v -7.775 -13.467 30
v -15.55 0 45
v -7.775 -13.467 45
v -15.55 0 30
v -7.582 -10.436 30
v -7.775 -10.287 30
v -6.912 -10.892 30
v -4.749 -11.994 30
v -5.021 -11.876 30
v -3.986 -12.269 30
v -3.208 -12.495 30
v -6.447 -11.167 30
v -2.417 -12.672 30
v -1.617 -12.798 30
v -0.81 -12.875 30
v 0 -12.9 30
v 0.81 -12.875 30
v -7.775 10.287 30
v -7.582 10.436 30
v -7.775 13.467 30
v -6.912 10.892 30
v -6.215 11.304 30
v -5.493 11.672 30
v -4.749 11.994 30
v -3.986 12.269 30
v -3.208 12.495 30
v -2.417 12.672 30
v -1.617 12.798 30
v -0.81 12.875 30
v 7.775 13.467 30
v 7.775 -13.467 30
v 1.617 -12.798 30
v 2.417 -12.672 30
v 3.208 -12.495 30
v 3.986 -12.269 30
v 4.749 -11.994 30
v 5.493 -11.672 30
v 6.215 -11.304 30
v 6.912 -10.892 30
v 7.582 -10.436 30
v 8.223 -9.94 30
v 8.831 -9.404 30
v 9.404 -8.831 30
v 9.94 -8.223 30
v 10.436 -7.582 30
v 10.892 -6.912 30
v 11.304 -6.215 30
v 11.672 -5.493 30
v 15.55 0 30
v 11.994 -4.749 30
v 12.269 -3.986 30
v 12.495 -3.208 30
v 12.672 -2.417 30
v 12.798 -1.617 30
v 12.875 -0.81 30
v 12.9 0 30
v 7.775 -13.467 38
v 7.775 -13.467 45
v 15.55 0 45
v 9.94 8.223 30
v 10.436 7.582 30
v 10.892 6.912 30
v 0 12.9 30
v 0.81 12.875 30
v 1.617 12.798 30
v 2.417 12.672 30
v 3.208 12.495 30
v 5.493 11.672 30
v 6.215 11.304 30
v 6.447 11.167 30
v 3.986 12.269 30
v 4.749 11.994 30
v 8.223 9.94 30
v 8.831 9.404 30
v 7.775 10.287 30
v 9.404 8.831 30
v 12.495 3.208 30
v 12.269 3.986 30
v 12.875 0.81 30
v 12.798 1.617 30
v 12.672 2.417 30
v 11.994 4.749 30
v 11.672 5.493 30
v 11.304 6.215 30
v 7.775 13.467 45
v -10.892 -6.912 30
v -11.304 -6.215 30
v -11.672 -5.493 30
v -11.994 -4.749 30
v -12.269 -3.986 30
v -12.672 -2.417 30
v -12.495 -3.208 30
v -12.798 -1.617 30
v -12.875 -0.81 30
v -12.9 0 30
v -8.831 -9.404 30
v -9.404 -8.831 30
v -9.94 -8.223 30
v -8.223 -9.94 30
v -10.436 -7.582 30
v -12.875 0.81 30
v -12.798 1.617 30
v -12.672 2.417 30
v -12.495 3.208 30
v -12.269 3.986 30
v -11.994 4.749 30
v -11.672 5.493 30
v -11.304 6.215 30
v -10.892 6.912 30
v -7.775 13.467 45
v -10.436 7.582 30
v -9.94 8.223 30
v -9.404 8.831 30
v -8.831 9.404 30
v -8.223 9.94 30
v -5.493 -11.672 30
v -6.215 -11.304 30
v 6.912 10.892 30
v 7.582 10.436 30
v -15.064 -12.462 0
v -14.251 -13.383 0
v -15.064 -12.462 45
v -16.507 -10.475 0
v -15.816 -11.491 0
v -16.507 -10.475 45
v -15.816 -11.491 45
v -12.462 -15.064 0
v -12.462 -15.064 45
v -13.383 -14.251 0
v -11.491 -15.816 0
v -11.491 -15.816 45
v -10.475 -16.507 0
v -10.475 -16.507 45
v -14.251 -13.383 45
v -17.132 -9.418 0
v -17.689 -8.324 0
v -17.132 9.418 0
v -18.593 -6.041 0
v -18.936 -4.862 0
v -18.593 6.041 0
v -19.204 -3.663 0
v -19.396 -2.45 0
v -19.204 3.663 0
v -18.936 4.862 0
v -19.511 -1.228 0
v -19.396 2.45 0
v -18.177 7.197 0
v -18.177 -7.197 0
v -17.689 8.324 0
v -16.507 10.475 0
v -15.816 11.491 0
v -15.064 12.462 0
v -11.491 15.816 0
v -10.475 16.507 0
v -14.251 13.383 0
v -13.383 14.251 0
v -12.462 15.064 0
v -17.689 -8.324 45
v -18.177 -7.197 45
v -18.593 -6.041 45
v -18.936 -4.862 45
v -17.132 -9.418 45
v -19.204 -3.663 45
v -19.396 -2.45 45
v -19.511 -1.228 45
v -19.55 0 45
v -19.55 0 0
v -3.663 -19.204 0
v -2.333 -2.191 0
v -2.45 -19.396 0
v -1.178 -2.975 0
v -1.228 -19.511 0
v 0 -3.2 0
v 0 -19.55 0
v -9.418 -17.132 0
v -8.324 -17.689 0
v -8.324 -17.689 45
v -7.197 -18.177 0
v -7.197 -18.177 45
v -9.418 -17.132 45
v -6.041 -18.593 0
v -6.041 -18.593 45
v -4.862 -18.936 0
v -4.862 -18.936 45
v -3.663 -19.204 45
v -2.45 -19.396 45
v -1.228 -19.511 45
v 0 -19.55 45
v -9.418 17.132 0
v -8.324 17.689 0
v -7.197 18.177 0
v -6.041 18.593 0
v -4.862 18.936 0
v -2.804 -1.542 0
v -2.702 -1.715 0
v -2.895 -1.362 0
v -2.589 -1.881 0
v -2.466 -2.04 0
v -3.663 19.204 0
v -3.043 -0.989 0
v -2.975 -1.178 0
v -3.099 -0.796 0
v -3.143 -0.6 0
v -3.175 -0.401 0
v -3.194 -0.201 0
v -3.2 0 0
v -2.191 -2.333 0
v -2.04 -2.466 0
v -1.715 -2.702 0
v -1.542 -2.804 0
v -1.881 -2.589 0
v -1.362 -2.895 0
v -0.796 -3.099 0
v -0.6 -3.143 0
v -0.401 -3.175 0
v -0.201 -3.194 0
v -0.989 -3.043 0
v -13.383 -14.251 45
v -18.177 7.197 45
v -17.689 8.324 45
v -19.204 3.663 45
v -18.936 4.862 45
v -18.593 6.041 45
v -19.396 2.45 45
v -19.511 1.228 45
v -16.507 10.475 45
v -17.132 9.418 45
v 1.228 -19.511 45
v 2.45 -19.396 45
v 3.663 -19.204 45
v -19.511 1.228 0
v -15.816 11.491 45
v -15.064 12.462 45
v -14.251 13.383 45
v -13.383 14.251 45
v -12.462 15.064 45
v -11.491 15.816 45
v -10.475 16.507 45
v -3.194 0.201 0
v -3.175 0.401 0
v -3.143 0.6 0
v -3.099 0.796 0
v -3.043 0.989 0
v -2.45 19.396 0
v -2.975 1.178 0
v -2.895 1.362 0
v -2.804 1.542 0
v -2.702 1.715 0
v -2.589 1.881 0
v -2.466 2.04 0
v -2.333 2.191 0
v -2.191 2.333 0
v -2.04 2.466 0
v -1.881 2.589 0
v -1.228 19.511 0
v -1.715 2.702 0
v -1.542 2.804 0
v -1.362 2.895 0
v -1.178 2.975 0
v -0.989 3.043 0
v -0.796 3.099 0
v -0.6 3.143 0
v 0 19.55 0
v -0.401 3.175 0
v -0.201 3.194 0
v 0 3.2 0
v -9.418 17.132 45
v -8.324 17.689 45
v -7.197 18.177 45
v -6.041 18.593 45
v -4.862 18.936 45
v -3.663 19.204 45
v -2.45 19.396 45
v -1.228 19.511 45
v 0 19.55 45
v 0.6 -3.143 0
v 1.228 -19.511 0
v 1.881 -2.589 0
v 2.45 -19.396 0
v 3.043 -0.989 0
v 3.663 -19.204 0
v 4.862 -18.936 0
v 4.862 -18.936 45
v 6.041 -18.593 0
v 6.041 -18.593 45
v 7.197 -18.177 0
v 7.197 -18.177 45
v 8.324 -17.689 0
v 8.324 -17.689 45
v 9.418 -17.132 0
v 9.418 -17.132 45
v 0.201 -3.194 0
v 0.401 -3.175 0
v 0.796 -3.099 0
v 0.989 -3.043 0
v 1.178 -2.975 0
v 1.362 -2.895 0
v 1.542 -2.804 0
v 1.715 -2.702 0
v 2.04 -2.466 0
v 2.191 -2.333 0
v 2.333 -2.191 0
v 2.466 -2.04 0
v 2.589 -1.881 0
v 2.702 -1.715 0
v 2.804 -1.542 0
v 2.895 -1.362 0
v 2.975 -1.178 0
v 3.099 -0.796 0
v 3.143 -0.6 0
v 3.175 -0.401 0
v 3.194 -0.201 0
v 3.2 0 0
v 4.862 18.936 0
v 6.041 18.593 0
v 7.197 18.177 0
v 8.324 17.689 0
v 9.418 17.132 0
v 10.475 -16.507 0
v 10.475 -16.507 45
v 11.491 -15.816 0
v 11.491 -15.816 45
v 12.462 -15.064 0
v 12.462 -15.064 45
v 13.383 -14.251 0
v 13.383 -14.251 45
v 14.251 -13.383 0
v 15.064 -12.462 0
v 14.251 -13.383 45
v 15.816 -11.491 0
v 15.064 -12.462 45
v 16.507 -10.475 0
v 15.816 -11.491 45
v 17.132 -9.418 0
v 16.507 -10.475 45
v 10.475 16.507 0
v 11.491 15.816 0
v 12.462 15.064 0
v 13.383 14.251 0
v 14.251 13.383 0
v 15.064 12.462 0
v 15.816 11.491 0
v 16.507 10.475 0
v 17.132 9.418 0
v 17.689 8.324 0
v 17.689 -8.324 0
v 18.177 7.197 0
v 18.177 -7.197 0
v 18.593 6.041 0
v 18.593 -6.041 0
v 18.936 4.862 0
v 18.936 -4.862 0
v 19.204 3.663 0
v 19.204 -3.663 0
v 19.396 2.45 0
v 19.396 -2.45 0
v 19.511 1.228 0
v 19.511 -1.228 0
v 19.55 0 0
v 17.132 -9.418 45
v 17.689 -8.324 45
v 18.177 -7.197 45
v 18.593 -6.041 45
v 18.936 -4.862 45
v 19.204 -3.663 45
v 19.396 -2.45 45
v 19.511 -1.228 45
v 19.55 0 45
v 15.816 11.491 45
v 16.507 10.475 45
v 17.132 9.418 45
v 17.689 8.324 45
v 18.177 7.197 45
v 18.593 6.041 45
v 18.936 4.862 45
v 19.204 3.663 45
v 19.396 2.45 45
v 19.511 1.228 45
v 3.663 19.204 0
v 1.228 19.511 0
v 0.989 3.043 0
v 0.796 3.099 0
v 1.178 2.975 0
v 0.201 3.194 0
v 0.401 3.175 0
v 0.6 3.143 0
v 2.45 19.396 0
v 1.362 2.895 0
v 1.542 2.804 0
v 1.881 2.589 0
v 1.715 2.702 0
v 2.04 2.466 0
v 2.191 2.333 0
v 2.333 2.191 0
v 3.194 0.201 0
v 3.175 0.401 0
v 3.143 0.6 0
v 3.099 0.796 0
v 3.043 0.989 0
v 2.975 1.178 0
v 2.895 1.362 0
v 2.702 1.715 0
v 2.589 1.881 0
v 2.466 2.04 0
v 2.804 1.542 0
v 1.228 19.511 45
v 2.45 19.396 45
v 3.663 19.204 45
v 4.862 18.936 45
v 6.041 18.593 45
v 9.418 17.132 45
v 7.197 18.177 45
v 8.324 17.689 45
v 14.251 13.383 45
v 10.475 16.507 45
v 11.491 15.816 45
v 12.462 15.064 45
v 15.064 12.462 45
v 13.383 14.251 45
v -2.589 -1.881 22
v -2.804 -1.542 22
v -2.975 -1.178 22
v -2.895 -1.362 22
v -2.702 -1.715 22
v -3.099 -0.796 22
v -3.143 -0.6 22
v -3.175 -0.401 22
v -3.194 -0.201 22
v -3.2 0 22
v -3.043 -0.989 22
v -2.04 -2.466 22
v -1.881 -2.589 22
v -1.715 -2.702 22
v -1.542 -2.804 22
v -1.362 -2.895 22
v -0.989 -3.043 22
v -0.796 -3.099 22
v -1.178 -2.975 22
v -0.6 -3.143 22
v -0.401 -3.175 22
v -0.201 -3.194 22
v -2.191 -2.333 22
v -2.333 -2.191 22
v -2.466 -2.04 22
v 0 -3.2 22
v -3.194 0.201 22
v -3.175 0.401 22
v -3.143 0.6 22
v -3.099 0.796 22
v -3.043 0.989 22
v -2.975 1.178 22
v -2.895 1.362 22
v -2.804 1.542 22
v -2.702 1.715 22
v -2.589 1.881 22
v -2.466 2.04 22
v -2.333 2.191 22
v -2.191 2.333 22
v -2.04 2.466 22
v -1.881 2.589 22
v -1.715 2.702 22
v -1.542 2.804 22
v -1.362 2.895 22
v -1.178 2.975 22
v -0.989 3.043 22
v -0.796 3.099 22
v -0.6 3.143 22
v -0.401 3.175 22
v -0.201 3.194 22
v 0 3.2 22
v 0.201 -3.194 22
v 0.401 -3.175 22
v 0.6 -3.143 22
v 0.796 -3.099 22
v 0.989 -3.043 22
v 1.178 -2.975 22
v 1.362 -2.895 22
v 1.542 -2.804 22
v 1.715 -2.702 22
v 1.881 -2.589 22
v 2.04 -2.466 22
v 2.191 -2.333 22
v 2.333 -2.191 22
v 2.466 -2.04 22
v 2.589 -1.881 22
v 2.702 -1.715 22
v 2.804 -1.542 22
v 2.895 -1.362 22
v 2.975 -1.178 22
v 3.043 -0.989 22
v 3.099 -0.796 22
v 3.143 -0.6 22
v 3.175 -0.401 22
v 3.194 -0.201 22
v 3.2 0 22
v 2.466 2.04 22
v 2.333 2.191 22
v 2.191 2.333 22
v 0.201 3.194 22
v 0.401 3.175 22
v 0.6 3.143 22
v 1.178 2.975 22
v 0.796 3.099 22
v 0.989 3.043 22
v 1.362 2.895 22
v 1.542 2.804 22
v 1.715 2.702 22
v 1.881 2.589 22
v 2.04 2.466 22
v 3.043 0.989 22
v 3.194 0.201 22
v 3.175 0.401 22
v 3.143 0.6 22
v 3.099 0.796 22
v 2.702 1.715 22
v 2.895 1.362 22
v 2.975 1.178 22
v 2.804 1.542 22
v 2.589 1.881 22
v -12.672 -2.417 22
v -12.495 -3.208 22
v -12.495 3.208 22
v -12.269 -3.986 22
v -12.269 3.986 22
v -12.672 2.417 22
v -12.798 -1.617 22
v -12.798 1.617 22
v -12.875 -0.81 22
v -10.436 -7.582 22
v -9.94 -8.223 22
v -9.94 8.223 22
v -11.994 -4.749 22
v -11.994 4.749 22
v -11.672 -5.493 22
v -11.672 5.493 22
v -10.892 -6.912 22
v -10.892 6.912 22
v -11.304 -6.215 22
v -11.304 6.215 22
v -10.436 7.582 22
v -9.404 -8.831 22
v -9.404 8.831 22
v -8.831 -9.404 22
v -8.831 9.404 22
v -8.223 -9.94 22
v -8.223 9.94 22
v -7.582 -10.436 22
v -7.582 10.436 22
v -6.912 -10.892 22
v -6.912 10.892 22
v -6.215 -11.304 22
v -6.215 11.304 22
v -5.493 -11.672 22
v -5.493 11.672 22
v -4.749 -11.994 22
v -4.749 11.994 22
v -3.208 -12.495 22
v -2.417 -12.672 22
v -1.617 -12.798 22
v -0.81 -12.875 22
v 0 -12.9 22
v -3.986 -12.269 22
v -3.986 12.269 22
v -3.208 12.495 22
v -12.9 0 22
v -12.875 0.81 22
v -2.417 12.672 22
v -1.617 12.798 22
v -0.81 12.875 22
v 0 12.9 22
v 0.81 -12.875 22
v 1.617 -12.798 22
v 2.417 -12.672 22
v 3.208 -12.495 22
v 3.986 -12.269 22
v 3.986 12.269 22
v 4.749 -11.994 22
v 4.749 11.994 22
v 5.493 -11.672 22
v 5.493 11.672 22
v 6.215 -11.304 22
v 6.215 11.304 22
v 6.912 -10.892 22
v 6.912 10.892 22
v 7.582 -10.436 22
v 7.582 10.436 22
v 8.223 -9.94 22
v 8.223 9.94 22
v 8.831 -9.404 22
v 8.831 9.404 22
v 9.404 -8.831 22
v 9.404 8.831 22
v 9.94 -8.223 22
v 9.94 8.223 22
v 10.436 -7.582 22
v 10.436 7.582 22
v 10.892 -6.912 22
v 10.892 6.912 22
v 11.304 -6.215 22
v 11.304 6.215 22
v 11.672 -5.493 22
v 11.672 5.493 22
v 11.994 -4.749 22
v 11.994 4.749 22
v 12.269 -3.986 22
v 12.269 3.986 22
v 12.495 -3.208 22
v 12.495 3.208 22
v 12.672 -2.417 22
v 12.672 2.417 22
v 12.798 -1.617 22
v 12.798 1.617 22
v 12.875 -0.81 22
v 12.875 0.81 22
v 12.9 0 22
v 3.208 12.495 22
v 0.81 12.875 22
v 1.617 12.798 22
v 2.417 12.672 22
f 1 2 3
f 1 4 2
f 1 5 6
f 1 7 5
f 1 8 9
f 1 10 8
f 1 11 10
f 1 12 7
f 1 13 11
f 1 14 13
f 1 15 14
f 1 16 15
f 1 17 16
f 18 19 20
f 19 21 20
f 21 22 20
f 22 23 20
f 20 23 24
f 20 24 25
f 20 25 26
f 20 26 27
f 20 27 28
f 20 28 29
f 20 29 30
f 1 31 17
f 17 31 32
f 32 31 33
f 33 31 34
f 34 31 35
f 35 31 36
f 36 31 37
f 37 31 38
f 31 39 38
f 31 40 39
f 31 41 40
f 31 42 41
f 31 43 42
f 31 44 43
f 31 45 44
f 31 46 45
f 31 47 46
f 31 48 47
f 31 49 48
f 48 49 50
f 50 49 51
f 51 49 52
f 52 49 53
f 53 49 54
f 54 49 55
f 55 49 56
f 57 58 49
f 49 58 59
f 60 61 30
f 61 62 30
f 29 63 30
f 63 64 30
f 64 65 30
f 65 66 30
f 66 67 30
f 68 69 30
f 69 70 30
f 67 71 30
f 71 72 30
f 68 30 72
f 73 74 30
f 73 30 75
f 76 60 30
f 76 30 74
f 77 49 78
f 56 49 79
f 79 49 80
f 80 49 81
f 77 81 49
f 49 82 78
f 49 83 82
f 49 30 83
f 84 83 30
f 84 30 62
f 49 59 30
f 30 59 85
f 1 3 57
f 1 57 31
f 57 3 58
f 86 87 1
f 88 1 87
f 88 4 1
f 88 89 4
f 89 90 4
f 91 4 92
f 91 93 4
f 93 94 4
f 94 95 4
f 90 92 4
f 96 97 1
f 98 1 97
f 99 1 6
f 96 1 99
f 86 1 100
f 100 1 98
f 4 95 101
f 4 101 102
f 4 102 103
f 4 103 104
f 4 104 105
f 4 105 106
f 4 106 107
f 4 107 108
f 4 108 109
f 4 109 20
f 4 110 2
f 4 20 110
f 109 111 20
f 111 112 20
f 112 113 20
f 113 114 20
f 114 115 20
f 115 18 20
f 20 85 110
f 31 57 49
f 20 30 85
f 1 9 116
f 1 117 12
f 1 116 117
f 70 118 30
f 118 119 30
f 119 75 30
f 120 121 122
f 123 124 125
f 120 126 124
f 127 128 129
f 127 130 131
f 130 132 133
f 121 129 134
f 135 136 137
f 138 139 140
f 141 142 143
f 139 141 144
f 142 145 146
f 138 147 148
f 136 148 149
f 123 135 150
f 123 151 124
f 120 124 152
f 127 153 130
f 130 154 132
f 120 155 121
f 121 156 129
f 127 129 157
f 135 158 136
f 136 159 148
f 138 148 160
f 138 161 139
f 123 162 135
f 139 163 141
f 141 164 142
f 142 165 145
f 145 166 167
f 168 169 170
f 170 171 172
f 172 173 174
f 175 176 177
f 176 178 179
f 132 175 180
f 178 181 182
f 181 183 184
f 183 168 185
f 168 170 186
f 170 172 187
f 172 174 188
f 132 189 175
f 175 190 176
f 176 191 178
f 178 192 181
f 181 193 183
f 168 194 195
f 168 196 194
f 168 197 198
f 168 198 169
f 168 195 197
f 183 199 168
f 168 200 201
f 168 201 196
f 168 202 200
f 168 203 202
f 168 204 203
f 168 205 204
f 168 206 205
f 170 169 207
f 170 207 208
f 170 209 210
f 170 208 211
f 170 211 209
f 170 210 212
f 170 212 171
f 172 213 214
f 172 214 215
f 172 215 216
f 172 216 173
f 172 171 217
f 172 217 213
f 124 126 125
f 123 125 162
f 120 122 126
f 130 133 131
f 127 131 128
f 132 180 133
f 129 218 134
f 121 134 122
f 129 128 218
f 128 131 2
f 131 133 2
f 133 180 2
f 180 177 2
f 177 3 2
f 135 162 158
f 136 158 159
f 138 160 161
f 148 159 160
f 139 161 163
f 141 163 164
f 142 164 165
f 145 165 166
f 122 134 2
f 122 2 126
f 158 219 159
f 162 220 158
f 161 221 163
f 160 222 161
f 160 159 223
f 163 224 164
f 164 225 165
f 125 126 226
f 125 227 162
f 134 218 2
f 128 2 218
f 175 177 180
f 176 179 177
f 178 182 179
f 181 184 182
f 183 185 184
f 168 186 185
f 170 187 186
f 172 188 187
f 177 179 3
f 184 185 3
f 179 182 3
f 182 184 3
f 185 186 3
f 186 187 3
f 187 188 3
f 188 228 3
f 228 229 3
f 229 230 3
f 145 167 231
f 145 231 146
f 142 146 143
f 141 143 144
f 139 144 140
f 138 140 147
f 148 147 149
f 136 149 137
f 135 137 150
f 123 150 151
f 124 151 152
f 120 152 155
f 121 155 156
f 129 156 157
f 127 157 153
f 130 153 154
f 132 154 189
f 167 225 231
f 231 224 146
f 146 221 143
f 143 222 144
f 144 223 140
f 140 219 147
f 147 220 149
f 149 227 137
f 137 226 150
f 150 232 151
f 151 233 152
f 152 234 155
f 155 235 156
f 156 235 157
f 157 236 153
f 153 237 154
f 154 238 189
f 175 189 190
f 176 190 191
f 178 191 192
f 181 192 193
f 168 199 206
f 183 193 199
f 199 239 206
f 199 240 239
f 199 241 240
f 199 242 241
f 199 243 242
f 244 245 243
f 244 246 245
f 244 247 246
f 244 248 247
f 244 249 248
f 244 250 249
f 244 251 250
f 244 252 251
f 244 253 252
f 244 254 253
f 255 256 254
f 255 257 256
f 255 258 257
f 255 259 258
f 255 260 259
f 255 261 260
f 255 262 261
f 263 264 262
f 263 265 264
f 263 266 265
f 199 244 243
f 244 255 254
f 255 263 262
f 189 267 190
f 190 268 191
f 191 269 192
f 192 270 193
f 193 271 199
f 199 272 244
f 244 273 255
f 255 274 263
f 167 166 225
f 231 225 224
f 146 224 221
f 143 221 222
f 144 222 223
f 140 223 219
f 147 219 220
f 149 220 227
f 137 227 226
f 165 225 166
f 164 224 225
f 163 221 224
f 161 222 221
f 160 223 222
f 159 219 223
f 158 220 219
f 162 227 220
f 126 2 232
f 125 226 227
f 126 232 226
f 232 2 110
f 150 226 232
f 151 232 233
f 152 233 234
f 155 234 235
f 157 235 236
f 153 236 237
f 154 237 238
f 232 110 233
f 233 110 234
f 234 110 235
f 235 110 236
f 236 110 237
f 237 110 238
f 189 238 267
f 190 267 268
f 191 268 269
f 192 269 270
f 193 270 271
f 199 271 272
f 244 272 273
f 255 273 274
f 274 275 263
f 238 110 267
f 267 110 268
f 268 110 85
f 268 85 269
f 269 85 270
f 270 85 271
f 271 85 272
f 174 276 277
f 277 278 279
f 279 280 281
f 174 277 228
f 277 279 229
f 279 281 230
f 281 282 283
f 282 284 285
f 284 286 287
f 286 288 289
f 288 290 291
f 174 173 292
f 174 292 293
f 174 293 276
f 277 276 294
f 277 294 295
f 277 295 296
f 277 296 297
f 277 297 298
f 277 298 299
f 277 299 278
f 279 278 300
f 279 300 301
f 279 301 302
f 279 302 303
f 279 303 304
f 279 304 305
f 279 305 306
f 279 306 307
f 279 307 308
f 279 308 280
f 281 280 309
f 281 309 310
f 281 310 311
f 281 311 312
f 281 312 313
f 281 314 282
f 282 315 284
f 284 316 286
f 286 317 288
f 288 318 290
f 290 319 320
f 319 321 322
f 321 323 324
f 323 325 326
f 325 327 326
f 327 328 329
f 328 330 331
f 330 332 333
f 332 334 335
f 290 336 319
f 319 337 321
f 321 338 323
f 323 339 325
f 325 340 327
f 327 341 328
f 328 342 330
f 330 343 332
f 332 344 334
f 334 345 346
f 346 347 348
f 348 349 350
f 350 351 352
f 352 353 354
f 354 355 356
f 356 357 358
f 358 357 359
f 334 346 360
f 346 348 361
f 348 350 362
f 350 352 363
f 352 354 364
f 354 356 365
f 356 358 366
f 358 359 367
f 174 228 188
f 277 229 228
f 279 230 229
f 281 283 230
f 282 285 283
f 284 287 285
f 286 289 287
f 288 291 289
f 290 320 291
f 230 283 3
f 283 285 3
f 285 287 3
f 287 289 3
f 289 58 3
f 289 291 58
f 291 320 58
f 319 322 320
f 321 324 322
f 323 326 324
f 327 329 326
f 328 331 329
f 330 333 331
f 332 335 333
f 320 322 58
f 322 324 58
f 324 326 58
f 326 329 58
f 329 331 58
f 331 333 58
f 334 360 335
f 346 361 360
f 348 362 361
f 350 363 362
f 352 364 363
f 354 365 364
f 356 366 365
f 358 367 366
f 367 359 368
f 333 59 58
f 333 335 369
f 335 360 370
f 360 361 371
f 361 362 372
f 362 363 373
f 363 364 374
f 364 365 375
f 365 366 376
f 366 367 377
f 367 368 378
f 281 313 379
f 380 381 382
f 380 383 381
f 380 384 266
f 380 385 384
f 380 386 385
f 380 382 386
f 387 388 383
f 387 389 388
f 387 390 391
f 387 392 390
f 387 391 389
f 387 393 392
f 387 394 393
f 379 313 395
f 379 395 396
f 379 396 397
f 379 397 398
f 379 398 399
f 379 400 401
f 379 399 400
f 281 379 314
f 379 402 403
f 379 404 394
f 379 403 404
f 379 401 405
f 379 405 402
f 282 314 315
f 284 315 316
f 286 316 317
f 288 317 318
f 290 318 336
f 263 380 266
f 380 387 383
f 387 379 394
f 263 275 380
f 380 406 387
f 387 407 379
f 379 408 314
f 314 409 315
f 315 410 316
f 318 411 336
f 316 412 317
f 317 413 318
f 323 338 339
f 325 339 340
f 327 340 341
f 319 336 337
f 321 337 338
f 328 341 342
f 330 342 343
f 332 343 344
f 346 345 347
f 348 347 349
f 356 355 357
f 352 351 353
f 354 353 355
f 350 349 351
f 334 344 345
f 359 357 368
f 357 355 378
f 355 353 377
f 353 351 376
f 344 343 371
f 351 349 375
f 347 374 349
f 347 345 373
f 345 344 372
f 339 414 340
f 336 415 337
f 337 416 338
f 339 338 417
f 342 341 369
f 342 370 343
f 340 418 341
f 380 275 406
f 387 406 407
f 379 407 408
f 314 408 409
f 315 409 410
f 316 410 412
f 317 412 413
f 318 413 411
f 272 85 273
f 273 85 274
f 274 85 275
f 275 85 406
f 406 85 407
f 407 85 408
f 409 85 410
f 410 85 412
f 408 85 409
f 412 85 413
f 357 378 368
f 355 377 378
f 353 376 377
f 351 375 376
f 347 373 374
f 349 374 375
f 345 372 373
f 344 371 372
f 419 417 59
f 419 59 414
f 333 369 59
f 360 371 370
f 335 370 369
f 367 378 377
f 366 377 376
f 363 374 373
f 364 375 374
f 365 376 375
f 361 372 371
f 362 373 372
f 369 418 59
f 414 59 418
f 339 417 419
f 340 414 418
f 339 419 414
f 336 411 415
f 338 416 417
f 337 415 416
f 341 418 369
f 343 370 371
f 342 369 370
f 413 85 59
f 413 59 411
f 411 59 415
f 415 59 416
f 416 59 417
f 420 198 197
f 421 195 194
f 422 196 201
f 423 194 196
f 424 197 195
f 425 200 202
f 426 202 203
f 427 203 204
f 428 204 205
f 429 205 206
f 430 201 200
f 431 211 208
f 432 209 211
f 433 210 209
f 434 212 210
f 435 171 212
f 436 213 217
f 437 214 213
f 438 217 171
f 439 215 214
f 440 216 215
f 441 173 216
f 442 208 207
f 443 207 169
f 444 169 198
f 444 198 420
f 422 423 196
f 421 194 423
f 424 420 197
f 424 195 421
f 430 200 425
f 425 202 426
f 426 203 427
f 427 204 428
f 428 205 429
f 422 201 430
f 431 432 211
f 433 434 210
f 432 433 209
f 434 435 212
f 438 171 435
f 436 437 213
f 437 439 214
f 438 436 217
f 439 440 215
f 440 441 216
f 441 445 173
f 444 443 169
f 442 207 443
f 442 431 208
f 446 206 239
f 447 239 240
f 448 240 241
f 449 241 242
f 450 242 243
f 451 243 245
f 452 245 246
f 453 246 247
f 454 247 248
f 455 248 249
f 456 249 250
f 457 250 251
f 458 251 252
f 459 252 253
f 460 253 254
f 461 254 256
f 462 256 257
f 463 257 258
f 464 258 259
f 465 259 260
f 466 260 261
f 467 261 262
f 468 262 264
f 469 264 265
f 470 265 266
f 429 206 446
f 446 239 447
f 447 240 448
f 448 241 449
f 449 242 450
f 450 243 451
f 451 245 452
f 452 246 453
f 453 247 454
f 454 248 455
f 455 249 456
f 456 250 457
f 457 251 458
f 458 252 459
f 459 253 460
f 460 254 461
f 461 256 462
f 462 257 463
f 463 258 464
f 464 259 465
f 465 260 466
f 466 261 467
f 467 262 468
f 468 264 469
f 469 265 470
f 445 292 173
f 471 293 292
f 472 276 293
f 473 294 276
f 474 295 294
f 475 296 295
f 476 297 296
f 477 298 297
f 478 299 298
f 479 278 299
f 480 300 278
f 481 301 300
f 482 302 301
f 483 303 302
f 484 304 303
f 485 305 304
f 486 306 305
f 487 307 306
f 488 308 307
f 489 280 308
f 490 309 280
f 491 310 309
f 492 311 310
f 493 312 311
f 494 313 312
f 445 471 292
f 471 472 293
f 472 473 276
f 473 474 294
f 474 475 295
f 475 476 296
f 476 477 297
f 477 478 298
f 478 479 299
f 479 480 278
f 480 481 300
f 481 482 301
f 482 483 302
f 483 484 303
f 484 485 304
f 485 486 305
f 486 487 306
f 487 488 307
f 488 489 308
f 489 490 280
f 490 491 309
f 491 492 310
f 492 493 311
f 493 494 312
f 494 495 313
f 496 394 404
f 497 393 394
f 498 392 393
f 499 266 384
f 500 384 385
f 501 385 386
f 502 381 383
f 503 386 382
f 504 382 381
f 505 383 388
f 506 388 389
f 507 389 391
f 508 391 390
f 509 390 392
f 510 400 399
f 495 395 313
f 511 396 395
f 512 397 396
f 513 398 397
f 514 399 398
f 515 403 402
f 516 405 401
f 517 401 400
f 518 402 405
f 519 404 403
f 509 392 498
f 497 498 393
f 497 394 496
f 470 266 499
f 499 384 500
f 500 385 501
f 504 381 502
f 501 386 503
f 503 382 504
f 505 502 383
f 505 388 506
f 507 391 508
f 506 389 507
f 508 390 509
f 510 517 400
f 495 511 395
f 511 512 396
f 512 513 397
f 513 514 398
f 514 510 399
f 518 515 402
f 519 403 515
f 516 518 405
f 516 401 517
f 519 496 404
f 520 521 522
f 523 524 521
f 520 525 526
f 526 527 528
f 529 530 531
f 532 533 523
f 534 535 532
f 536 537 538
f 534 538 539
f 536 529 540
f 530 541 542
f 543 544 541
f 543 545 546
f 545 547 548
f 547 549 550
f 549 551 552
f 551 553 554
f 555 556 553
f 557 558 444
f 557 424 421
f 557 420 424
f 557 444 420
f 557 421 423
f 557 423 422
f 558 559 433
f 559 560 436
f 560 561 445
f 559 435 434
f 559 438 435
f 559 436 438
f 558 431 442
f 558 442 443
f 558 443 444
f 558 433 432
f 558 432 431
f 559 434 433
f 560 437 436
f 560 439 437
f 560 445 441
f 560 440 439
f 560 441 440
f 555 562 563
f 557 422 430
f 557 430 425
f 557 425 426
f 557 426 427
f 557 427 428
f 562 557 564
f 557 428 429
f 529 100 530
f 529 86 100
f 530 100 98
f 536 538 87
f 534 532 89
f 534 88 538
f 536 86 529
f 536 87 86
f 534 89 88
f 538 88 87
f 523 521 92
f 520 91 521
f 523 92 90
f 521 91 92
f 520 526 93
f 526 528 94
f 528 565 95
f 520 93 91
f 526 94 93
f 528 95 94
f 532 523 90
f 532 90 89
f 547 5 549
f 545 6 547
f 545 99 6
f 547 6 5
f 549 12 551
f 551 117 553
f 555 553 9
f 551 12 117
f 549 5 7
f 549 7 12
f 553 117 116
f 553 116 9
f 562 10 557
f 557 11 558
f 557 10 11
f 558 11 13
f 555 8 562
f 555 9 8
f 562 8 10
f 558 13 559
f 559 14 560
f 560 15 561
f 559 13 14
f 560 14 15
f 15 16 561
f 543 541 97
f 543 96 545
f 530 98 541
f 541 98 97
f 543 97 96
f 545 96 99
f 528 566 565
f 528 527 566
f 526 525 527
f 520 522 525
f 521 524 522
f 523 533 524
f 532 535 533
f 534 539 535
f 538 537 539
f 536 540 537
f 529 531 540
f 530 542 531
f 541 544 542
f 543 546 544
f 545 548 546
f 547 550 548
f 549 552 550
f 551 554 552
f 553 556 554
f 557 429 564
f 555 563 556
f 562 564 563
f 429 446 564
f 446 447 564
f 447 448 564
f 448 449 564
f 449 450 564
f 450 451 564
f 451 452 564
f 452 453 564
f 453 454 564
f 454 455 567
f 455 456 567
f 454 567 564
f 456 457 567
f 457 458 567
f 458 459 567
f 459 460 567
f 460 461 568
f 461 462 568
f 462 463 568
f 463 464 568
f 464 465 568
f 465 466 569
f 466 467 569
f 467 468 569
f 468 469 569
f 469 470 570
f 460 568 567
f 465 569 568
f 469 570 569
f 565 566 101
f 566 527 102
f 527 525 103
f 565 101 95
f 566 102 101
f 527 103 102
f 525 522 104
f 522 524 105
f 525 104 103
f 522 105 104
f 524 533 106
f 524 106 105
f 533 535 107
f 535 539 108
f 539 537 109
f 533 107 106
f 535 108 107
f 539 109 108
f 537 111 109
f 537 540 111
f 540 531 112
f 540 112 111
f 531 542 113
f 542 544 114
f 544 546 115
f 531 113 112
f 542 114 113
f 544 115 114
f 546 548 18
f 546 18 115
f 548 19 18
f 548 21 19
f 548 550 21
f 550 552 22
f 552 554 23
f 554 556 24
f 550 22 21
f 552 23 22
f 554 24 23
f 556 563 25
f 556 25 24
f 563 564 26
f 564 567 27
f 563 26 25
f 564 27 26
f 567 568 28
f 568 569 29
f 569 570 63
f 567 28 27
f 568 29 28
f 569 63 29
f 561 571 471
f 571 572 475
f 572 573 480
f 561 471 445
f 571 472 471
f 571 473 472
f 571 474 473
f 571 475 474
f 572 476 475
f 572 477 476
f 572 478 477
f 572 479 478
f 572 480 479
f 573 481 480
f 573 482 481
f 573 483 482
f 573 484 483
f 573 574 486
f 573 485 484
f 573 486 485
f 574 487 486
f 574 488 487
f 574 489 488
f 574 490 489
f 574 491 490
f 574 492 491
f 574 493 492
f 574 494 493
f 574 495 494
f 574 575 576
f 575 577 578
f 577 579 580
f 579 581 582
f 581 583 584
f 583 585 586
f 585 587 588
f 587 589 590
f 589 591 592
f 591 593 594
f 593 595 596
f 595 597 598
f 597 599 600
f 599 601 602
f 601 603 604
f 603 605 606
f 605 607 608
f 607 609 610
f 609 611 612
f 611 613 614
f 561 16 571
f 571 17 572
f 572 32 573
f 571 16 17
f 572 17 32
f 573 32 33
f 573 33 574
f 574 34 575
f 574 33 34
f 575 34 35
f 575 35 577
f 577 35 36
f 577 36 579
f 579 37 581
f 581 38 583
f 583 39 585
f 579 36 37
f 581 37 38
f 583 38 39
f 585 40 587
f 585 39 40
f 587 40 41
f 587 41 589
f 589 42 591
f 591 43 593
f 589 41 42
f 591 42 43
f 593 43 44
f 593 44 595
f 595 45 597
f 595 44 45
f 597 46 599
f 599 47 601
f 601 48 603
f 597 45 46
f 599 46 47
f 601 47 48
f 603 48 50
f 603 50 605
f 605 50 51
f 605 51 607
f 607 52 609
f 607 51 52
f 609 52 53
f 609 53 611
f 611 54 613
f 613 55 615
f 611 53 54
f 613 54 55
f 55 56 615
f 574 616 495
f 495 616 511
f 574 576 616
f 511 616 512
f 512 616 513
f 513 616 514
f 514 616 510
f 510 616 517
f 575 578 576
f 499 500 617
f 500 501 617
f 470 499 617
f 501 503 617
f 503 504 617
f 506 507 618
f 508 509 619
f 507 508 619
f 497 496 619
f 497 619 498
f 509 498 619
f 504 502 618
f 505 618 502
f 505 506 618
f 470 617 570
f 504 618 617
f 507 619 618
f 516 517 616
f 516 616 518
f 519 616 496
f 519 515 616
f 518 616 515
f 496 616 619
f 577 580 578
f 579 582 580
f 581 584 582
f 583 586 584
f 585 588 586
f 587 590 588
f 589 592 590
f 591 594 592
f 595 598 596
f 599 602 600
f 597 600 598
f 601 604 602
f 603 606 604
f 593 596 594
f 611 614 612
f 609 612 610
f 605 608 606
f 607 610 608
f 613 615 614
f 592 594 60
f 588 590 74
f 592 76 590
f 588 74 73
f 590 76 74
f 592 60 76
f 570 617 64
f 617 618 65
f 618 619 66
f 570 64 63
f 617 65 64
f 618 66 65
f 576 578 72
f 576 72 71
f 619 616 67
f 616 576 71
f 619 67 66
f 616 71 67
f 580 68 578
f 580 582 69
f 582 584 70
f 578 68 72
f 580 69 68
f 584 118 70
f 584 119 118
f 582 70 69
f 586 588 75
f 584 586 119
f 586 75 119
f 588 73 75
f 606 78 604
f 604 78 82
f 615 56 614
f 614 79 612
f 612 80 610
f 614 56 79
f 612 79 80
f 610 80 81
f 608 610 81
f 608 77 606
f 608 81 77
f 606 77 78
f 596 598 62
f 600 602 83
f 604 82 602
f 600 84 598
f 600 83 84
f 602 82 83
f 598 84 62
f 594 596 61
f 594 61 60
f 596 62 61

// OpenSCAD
// --- PARAMETER (in mm) ---
$fn = 100; // Glatte Rundungen

// Gemessene Maße + Toleranz
toleranz = 0.4;
griff_od = 30.7 + toleranz;       // Aussendurchmesser Sterngriff (3.07 cm)
stufen_id = 25.4 + toleranz;      // Innendurchmesser Stufe (2.54 cm)
schraube_d = 6.0 + toleranz;      // Gewindedurchmesser (M6 / 0.6 cm)
gesamthoehe = 37.7;              // Gesamthöhe (3.77 cm)

// Zylinder-Dimensionen für das Gehäuse
zylinder_h = 45;                  // Gesamthöhe des Gehäuse-Zylinders
zylinder_d = griff_od + 8;        // Wandsatärke rundherum ca. 4mm

// Tiefen der Aussparungen (Anpassbar je nach Höhe des Sterngriffs)
griff_tiefe = 15;                 // Tiefe für den Sterngriff oben
stufen_tiefe = 8;                 // Tiefe für die innere Stufe

// --- MODELLIERUNG ---
difference() {
    // 1. Hauptzylinder (Außenform)
    cylinder(h = zylinder_h, d = zylinder_d);

    // 2. Aussparung für die Schraube (geht ganz durch)
    translate([0, 0, -1])
        cylinder(h = zylinder_h + 2, d = schraube_d);

    // 3. Aussparung für den Sterngriff (Negativform gegen Verdrehen)
    translate([0, 0, zylinder_h - griff_tiefe]) {
        // 6-Zack Sternform für verdrehsicheren Halt
        for (a = [0 : 60 : 300]) {
            rotate([0, 0, a])
                cylinder(h = griff_tiefe + 1, d = griff_od, $fn = 6);
        }
    }

    // 4. Aussparung für die innere Stufe/Einbuchtung
    translate([0, 0, zylinder_h - griff_tiefe - stufen_tiefe])
        cylinder(h = stufen_tiefe + 0.1, d = stufen_id);
}
